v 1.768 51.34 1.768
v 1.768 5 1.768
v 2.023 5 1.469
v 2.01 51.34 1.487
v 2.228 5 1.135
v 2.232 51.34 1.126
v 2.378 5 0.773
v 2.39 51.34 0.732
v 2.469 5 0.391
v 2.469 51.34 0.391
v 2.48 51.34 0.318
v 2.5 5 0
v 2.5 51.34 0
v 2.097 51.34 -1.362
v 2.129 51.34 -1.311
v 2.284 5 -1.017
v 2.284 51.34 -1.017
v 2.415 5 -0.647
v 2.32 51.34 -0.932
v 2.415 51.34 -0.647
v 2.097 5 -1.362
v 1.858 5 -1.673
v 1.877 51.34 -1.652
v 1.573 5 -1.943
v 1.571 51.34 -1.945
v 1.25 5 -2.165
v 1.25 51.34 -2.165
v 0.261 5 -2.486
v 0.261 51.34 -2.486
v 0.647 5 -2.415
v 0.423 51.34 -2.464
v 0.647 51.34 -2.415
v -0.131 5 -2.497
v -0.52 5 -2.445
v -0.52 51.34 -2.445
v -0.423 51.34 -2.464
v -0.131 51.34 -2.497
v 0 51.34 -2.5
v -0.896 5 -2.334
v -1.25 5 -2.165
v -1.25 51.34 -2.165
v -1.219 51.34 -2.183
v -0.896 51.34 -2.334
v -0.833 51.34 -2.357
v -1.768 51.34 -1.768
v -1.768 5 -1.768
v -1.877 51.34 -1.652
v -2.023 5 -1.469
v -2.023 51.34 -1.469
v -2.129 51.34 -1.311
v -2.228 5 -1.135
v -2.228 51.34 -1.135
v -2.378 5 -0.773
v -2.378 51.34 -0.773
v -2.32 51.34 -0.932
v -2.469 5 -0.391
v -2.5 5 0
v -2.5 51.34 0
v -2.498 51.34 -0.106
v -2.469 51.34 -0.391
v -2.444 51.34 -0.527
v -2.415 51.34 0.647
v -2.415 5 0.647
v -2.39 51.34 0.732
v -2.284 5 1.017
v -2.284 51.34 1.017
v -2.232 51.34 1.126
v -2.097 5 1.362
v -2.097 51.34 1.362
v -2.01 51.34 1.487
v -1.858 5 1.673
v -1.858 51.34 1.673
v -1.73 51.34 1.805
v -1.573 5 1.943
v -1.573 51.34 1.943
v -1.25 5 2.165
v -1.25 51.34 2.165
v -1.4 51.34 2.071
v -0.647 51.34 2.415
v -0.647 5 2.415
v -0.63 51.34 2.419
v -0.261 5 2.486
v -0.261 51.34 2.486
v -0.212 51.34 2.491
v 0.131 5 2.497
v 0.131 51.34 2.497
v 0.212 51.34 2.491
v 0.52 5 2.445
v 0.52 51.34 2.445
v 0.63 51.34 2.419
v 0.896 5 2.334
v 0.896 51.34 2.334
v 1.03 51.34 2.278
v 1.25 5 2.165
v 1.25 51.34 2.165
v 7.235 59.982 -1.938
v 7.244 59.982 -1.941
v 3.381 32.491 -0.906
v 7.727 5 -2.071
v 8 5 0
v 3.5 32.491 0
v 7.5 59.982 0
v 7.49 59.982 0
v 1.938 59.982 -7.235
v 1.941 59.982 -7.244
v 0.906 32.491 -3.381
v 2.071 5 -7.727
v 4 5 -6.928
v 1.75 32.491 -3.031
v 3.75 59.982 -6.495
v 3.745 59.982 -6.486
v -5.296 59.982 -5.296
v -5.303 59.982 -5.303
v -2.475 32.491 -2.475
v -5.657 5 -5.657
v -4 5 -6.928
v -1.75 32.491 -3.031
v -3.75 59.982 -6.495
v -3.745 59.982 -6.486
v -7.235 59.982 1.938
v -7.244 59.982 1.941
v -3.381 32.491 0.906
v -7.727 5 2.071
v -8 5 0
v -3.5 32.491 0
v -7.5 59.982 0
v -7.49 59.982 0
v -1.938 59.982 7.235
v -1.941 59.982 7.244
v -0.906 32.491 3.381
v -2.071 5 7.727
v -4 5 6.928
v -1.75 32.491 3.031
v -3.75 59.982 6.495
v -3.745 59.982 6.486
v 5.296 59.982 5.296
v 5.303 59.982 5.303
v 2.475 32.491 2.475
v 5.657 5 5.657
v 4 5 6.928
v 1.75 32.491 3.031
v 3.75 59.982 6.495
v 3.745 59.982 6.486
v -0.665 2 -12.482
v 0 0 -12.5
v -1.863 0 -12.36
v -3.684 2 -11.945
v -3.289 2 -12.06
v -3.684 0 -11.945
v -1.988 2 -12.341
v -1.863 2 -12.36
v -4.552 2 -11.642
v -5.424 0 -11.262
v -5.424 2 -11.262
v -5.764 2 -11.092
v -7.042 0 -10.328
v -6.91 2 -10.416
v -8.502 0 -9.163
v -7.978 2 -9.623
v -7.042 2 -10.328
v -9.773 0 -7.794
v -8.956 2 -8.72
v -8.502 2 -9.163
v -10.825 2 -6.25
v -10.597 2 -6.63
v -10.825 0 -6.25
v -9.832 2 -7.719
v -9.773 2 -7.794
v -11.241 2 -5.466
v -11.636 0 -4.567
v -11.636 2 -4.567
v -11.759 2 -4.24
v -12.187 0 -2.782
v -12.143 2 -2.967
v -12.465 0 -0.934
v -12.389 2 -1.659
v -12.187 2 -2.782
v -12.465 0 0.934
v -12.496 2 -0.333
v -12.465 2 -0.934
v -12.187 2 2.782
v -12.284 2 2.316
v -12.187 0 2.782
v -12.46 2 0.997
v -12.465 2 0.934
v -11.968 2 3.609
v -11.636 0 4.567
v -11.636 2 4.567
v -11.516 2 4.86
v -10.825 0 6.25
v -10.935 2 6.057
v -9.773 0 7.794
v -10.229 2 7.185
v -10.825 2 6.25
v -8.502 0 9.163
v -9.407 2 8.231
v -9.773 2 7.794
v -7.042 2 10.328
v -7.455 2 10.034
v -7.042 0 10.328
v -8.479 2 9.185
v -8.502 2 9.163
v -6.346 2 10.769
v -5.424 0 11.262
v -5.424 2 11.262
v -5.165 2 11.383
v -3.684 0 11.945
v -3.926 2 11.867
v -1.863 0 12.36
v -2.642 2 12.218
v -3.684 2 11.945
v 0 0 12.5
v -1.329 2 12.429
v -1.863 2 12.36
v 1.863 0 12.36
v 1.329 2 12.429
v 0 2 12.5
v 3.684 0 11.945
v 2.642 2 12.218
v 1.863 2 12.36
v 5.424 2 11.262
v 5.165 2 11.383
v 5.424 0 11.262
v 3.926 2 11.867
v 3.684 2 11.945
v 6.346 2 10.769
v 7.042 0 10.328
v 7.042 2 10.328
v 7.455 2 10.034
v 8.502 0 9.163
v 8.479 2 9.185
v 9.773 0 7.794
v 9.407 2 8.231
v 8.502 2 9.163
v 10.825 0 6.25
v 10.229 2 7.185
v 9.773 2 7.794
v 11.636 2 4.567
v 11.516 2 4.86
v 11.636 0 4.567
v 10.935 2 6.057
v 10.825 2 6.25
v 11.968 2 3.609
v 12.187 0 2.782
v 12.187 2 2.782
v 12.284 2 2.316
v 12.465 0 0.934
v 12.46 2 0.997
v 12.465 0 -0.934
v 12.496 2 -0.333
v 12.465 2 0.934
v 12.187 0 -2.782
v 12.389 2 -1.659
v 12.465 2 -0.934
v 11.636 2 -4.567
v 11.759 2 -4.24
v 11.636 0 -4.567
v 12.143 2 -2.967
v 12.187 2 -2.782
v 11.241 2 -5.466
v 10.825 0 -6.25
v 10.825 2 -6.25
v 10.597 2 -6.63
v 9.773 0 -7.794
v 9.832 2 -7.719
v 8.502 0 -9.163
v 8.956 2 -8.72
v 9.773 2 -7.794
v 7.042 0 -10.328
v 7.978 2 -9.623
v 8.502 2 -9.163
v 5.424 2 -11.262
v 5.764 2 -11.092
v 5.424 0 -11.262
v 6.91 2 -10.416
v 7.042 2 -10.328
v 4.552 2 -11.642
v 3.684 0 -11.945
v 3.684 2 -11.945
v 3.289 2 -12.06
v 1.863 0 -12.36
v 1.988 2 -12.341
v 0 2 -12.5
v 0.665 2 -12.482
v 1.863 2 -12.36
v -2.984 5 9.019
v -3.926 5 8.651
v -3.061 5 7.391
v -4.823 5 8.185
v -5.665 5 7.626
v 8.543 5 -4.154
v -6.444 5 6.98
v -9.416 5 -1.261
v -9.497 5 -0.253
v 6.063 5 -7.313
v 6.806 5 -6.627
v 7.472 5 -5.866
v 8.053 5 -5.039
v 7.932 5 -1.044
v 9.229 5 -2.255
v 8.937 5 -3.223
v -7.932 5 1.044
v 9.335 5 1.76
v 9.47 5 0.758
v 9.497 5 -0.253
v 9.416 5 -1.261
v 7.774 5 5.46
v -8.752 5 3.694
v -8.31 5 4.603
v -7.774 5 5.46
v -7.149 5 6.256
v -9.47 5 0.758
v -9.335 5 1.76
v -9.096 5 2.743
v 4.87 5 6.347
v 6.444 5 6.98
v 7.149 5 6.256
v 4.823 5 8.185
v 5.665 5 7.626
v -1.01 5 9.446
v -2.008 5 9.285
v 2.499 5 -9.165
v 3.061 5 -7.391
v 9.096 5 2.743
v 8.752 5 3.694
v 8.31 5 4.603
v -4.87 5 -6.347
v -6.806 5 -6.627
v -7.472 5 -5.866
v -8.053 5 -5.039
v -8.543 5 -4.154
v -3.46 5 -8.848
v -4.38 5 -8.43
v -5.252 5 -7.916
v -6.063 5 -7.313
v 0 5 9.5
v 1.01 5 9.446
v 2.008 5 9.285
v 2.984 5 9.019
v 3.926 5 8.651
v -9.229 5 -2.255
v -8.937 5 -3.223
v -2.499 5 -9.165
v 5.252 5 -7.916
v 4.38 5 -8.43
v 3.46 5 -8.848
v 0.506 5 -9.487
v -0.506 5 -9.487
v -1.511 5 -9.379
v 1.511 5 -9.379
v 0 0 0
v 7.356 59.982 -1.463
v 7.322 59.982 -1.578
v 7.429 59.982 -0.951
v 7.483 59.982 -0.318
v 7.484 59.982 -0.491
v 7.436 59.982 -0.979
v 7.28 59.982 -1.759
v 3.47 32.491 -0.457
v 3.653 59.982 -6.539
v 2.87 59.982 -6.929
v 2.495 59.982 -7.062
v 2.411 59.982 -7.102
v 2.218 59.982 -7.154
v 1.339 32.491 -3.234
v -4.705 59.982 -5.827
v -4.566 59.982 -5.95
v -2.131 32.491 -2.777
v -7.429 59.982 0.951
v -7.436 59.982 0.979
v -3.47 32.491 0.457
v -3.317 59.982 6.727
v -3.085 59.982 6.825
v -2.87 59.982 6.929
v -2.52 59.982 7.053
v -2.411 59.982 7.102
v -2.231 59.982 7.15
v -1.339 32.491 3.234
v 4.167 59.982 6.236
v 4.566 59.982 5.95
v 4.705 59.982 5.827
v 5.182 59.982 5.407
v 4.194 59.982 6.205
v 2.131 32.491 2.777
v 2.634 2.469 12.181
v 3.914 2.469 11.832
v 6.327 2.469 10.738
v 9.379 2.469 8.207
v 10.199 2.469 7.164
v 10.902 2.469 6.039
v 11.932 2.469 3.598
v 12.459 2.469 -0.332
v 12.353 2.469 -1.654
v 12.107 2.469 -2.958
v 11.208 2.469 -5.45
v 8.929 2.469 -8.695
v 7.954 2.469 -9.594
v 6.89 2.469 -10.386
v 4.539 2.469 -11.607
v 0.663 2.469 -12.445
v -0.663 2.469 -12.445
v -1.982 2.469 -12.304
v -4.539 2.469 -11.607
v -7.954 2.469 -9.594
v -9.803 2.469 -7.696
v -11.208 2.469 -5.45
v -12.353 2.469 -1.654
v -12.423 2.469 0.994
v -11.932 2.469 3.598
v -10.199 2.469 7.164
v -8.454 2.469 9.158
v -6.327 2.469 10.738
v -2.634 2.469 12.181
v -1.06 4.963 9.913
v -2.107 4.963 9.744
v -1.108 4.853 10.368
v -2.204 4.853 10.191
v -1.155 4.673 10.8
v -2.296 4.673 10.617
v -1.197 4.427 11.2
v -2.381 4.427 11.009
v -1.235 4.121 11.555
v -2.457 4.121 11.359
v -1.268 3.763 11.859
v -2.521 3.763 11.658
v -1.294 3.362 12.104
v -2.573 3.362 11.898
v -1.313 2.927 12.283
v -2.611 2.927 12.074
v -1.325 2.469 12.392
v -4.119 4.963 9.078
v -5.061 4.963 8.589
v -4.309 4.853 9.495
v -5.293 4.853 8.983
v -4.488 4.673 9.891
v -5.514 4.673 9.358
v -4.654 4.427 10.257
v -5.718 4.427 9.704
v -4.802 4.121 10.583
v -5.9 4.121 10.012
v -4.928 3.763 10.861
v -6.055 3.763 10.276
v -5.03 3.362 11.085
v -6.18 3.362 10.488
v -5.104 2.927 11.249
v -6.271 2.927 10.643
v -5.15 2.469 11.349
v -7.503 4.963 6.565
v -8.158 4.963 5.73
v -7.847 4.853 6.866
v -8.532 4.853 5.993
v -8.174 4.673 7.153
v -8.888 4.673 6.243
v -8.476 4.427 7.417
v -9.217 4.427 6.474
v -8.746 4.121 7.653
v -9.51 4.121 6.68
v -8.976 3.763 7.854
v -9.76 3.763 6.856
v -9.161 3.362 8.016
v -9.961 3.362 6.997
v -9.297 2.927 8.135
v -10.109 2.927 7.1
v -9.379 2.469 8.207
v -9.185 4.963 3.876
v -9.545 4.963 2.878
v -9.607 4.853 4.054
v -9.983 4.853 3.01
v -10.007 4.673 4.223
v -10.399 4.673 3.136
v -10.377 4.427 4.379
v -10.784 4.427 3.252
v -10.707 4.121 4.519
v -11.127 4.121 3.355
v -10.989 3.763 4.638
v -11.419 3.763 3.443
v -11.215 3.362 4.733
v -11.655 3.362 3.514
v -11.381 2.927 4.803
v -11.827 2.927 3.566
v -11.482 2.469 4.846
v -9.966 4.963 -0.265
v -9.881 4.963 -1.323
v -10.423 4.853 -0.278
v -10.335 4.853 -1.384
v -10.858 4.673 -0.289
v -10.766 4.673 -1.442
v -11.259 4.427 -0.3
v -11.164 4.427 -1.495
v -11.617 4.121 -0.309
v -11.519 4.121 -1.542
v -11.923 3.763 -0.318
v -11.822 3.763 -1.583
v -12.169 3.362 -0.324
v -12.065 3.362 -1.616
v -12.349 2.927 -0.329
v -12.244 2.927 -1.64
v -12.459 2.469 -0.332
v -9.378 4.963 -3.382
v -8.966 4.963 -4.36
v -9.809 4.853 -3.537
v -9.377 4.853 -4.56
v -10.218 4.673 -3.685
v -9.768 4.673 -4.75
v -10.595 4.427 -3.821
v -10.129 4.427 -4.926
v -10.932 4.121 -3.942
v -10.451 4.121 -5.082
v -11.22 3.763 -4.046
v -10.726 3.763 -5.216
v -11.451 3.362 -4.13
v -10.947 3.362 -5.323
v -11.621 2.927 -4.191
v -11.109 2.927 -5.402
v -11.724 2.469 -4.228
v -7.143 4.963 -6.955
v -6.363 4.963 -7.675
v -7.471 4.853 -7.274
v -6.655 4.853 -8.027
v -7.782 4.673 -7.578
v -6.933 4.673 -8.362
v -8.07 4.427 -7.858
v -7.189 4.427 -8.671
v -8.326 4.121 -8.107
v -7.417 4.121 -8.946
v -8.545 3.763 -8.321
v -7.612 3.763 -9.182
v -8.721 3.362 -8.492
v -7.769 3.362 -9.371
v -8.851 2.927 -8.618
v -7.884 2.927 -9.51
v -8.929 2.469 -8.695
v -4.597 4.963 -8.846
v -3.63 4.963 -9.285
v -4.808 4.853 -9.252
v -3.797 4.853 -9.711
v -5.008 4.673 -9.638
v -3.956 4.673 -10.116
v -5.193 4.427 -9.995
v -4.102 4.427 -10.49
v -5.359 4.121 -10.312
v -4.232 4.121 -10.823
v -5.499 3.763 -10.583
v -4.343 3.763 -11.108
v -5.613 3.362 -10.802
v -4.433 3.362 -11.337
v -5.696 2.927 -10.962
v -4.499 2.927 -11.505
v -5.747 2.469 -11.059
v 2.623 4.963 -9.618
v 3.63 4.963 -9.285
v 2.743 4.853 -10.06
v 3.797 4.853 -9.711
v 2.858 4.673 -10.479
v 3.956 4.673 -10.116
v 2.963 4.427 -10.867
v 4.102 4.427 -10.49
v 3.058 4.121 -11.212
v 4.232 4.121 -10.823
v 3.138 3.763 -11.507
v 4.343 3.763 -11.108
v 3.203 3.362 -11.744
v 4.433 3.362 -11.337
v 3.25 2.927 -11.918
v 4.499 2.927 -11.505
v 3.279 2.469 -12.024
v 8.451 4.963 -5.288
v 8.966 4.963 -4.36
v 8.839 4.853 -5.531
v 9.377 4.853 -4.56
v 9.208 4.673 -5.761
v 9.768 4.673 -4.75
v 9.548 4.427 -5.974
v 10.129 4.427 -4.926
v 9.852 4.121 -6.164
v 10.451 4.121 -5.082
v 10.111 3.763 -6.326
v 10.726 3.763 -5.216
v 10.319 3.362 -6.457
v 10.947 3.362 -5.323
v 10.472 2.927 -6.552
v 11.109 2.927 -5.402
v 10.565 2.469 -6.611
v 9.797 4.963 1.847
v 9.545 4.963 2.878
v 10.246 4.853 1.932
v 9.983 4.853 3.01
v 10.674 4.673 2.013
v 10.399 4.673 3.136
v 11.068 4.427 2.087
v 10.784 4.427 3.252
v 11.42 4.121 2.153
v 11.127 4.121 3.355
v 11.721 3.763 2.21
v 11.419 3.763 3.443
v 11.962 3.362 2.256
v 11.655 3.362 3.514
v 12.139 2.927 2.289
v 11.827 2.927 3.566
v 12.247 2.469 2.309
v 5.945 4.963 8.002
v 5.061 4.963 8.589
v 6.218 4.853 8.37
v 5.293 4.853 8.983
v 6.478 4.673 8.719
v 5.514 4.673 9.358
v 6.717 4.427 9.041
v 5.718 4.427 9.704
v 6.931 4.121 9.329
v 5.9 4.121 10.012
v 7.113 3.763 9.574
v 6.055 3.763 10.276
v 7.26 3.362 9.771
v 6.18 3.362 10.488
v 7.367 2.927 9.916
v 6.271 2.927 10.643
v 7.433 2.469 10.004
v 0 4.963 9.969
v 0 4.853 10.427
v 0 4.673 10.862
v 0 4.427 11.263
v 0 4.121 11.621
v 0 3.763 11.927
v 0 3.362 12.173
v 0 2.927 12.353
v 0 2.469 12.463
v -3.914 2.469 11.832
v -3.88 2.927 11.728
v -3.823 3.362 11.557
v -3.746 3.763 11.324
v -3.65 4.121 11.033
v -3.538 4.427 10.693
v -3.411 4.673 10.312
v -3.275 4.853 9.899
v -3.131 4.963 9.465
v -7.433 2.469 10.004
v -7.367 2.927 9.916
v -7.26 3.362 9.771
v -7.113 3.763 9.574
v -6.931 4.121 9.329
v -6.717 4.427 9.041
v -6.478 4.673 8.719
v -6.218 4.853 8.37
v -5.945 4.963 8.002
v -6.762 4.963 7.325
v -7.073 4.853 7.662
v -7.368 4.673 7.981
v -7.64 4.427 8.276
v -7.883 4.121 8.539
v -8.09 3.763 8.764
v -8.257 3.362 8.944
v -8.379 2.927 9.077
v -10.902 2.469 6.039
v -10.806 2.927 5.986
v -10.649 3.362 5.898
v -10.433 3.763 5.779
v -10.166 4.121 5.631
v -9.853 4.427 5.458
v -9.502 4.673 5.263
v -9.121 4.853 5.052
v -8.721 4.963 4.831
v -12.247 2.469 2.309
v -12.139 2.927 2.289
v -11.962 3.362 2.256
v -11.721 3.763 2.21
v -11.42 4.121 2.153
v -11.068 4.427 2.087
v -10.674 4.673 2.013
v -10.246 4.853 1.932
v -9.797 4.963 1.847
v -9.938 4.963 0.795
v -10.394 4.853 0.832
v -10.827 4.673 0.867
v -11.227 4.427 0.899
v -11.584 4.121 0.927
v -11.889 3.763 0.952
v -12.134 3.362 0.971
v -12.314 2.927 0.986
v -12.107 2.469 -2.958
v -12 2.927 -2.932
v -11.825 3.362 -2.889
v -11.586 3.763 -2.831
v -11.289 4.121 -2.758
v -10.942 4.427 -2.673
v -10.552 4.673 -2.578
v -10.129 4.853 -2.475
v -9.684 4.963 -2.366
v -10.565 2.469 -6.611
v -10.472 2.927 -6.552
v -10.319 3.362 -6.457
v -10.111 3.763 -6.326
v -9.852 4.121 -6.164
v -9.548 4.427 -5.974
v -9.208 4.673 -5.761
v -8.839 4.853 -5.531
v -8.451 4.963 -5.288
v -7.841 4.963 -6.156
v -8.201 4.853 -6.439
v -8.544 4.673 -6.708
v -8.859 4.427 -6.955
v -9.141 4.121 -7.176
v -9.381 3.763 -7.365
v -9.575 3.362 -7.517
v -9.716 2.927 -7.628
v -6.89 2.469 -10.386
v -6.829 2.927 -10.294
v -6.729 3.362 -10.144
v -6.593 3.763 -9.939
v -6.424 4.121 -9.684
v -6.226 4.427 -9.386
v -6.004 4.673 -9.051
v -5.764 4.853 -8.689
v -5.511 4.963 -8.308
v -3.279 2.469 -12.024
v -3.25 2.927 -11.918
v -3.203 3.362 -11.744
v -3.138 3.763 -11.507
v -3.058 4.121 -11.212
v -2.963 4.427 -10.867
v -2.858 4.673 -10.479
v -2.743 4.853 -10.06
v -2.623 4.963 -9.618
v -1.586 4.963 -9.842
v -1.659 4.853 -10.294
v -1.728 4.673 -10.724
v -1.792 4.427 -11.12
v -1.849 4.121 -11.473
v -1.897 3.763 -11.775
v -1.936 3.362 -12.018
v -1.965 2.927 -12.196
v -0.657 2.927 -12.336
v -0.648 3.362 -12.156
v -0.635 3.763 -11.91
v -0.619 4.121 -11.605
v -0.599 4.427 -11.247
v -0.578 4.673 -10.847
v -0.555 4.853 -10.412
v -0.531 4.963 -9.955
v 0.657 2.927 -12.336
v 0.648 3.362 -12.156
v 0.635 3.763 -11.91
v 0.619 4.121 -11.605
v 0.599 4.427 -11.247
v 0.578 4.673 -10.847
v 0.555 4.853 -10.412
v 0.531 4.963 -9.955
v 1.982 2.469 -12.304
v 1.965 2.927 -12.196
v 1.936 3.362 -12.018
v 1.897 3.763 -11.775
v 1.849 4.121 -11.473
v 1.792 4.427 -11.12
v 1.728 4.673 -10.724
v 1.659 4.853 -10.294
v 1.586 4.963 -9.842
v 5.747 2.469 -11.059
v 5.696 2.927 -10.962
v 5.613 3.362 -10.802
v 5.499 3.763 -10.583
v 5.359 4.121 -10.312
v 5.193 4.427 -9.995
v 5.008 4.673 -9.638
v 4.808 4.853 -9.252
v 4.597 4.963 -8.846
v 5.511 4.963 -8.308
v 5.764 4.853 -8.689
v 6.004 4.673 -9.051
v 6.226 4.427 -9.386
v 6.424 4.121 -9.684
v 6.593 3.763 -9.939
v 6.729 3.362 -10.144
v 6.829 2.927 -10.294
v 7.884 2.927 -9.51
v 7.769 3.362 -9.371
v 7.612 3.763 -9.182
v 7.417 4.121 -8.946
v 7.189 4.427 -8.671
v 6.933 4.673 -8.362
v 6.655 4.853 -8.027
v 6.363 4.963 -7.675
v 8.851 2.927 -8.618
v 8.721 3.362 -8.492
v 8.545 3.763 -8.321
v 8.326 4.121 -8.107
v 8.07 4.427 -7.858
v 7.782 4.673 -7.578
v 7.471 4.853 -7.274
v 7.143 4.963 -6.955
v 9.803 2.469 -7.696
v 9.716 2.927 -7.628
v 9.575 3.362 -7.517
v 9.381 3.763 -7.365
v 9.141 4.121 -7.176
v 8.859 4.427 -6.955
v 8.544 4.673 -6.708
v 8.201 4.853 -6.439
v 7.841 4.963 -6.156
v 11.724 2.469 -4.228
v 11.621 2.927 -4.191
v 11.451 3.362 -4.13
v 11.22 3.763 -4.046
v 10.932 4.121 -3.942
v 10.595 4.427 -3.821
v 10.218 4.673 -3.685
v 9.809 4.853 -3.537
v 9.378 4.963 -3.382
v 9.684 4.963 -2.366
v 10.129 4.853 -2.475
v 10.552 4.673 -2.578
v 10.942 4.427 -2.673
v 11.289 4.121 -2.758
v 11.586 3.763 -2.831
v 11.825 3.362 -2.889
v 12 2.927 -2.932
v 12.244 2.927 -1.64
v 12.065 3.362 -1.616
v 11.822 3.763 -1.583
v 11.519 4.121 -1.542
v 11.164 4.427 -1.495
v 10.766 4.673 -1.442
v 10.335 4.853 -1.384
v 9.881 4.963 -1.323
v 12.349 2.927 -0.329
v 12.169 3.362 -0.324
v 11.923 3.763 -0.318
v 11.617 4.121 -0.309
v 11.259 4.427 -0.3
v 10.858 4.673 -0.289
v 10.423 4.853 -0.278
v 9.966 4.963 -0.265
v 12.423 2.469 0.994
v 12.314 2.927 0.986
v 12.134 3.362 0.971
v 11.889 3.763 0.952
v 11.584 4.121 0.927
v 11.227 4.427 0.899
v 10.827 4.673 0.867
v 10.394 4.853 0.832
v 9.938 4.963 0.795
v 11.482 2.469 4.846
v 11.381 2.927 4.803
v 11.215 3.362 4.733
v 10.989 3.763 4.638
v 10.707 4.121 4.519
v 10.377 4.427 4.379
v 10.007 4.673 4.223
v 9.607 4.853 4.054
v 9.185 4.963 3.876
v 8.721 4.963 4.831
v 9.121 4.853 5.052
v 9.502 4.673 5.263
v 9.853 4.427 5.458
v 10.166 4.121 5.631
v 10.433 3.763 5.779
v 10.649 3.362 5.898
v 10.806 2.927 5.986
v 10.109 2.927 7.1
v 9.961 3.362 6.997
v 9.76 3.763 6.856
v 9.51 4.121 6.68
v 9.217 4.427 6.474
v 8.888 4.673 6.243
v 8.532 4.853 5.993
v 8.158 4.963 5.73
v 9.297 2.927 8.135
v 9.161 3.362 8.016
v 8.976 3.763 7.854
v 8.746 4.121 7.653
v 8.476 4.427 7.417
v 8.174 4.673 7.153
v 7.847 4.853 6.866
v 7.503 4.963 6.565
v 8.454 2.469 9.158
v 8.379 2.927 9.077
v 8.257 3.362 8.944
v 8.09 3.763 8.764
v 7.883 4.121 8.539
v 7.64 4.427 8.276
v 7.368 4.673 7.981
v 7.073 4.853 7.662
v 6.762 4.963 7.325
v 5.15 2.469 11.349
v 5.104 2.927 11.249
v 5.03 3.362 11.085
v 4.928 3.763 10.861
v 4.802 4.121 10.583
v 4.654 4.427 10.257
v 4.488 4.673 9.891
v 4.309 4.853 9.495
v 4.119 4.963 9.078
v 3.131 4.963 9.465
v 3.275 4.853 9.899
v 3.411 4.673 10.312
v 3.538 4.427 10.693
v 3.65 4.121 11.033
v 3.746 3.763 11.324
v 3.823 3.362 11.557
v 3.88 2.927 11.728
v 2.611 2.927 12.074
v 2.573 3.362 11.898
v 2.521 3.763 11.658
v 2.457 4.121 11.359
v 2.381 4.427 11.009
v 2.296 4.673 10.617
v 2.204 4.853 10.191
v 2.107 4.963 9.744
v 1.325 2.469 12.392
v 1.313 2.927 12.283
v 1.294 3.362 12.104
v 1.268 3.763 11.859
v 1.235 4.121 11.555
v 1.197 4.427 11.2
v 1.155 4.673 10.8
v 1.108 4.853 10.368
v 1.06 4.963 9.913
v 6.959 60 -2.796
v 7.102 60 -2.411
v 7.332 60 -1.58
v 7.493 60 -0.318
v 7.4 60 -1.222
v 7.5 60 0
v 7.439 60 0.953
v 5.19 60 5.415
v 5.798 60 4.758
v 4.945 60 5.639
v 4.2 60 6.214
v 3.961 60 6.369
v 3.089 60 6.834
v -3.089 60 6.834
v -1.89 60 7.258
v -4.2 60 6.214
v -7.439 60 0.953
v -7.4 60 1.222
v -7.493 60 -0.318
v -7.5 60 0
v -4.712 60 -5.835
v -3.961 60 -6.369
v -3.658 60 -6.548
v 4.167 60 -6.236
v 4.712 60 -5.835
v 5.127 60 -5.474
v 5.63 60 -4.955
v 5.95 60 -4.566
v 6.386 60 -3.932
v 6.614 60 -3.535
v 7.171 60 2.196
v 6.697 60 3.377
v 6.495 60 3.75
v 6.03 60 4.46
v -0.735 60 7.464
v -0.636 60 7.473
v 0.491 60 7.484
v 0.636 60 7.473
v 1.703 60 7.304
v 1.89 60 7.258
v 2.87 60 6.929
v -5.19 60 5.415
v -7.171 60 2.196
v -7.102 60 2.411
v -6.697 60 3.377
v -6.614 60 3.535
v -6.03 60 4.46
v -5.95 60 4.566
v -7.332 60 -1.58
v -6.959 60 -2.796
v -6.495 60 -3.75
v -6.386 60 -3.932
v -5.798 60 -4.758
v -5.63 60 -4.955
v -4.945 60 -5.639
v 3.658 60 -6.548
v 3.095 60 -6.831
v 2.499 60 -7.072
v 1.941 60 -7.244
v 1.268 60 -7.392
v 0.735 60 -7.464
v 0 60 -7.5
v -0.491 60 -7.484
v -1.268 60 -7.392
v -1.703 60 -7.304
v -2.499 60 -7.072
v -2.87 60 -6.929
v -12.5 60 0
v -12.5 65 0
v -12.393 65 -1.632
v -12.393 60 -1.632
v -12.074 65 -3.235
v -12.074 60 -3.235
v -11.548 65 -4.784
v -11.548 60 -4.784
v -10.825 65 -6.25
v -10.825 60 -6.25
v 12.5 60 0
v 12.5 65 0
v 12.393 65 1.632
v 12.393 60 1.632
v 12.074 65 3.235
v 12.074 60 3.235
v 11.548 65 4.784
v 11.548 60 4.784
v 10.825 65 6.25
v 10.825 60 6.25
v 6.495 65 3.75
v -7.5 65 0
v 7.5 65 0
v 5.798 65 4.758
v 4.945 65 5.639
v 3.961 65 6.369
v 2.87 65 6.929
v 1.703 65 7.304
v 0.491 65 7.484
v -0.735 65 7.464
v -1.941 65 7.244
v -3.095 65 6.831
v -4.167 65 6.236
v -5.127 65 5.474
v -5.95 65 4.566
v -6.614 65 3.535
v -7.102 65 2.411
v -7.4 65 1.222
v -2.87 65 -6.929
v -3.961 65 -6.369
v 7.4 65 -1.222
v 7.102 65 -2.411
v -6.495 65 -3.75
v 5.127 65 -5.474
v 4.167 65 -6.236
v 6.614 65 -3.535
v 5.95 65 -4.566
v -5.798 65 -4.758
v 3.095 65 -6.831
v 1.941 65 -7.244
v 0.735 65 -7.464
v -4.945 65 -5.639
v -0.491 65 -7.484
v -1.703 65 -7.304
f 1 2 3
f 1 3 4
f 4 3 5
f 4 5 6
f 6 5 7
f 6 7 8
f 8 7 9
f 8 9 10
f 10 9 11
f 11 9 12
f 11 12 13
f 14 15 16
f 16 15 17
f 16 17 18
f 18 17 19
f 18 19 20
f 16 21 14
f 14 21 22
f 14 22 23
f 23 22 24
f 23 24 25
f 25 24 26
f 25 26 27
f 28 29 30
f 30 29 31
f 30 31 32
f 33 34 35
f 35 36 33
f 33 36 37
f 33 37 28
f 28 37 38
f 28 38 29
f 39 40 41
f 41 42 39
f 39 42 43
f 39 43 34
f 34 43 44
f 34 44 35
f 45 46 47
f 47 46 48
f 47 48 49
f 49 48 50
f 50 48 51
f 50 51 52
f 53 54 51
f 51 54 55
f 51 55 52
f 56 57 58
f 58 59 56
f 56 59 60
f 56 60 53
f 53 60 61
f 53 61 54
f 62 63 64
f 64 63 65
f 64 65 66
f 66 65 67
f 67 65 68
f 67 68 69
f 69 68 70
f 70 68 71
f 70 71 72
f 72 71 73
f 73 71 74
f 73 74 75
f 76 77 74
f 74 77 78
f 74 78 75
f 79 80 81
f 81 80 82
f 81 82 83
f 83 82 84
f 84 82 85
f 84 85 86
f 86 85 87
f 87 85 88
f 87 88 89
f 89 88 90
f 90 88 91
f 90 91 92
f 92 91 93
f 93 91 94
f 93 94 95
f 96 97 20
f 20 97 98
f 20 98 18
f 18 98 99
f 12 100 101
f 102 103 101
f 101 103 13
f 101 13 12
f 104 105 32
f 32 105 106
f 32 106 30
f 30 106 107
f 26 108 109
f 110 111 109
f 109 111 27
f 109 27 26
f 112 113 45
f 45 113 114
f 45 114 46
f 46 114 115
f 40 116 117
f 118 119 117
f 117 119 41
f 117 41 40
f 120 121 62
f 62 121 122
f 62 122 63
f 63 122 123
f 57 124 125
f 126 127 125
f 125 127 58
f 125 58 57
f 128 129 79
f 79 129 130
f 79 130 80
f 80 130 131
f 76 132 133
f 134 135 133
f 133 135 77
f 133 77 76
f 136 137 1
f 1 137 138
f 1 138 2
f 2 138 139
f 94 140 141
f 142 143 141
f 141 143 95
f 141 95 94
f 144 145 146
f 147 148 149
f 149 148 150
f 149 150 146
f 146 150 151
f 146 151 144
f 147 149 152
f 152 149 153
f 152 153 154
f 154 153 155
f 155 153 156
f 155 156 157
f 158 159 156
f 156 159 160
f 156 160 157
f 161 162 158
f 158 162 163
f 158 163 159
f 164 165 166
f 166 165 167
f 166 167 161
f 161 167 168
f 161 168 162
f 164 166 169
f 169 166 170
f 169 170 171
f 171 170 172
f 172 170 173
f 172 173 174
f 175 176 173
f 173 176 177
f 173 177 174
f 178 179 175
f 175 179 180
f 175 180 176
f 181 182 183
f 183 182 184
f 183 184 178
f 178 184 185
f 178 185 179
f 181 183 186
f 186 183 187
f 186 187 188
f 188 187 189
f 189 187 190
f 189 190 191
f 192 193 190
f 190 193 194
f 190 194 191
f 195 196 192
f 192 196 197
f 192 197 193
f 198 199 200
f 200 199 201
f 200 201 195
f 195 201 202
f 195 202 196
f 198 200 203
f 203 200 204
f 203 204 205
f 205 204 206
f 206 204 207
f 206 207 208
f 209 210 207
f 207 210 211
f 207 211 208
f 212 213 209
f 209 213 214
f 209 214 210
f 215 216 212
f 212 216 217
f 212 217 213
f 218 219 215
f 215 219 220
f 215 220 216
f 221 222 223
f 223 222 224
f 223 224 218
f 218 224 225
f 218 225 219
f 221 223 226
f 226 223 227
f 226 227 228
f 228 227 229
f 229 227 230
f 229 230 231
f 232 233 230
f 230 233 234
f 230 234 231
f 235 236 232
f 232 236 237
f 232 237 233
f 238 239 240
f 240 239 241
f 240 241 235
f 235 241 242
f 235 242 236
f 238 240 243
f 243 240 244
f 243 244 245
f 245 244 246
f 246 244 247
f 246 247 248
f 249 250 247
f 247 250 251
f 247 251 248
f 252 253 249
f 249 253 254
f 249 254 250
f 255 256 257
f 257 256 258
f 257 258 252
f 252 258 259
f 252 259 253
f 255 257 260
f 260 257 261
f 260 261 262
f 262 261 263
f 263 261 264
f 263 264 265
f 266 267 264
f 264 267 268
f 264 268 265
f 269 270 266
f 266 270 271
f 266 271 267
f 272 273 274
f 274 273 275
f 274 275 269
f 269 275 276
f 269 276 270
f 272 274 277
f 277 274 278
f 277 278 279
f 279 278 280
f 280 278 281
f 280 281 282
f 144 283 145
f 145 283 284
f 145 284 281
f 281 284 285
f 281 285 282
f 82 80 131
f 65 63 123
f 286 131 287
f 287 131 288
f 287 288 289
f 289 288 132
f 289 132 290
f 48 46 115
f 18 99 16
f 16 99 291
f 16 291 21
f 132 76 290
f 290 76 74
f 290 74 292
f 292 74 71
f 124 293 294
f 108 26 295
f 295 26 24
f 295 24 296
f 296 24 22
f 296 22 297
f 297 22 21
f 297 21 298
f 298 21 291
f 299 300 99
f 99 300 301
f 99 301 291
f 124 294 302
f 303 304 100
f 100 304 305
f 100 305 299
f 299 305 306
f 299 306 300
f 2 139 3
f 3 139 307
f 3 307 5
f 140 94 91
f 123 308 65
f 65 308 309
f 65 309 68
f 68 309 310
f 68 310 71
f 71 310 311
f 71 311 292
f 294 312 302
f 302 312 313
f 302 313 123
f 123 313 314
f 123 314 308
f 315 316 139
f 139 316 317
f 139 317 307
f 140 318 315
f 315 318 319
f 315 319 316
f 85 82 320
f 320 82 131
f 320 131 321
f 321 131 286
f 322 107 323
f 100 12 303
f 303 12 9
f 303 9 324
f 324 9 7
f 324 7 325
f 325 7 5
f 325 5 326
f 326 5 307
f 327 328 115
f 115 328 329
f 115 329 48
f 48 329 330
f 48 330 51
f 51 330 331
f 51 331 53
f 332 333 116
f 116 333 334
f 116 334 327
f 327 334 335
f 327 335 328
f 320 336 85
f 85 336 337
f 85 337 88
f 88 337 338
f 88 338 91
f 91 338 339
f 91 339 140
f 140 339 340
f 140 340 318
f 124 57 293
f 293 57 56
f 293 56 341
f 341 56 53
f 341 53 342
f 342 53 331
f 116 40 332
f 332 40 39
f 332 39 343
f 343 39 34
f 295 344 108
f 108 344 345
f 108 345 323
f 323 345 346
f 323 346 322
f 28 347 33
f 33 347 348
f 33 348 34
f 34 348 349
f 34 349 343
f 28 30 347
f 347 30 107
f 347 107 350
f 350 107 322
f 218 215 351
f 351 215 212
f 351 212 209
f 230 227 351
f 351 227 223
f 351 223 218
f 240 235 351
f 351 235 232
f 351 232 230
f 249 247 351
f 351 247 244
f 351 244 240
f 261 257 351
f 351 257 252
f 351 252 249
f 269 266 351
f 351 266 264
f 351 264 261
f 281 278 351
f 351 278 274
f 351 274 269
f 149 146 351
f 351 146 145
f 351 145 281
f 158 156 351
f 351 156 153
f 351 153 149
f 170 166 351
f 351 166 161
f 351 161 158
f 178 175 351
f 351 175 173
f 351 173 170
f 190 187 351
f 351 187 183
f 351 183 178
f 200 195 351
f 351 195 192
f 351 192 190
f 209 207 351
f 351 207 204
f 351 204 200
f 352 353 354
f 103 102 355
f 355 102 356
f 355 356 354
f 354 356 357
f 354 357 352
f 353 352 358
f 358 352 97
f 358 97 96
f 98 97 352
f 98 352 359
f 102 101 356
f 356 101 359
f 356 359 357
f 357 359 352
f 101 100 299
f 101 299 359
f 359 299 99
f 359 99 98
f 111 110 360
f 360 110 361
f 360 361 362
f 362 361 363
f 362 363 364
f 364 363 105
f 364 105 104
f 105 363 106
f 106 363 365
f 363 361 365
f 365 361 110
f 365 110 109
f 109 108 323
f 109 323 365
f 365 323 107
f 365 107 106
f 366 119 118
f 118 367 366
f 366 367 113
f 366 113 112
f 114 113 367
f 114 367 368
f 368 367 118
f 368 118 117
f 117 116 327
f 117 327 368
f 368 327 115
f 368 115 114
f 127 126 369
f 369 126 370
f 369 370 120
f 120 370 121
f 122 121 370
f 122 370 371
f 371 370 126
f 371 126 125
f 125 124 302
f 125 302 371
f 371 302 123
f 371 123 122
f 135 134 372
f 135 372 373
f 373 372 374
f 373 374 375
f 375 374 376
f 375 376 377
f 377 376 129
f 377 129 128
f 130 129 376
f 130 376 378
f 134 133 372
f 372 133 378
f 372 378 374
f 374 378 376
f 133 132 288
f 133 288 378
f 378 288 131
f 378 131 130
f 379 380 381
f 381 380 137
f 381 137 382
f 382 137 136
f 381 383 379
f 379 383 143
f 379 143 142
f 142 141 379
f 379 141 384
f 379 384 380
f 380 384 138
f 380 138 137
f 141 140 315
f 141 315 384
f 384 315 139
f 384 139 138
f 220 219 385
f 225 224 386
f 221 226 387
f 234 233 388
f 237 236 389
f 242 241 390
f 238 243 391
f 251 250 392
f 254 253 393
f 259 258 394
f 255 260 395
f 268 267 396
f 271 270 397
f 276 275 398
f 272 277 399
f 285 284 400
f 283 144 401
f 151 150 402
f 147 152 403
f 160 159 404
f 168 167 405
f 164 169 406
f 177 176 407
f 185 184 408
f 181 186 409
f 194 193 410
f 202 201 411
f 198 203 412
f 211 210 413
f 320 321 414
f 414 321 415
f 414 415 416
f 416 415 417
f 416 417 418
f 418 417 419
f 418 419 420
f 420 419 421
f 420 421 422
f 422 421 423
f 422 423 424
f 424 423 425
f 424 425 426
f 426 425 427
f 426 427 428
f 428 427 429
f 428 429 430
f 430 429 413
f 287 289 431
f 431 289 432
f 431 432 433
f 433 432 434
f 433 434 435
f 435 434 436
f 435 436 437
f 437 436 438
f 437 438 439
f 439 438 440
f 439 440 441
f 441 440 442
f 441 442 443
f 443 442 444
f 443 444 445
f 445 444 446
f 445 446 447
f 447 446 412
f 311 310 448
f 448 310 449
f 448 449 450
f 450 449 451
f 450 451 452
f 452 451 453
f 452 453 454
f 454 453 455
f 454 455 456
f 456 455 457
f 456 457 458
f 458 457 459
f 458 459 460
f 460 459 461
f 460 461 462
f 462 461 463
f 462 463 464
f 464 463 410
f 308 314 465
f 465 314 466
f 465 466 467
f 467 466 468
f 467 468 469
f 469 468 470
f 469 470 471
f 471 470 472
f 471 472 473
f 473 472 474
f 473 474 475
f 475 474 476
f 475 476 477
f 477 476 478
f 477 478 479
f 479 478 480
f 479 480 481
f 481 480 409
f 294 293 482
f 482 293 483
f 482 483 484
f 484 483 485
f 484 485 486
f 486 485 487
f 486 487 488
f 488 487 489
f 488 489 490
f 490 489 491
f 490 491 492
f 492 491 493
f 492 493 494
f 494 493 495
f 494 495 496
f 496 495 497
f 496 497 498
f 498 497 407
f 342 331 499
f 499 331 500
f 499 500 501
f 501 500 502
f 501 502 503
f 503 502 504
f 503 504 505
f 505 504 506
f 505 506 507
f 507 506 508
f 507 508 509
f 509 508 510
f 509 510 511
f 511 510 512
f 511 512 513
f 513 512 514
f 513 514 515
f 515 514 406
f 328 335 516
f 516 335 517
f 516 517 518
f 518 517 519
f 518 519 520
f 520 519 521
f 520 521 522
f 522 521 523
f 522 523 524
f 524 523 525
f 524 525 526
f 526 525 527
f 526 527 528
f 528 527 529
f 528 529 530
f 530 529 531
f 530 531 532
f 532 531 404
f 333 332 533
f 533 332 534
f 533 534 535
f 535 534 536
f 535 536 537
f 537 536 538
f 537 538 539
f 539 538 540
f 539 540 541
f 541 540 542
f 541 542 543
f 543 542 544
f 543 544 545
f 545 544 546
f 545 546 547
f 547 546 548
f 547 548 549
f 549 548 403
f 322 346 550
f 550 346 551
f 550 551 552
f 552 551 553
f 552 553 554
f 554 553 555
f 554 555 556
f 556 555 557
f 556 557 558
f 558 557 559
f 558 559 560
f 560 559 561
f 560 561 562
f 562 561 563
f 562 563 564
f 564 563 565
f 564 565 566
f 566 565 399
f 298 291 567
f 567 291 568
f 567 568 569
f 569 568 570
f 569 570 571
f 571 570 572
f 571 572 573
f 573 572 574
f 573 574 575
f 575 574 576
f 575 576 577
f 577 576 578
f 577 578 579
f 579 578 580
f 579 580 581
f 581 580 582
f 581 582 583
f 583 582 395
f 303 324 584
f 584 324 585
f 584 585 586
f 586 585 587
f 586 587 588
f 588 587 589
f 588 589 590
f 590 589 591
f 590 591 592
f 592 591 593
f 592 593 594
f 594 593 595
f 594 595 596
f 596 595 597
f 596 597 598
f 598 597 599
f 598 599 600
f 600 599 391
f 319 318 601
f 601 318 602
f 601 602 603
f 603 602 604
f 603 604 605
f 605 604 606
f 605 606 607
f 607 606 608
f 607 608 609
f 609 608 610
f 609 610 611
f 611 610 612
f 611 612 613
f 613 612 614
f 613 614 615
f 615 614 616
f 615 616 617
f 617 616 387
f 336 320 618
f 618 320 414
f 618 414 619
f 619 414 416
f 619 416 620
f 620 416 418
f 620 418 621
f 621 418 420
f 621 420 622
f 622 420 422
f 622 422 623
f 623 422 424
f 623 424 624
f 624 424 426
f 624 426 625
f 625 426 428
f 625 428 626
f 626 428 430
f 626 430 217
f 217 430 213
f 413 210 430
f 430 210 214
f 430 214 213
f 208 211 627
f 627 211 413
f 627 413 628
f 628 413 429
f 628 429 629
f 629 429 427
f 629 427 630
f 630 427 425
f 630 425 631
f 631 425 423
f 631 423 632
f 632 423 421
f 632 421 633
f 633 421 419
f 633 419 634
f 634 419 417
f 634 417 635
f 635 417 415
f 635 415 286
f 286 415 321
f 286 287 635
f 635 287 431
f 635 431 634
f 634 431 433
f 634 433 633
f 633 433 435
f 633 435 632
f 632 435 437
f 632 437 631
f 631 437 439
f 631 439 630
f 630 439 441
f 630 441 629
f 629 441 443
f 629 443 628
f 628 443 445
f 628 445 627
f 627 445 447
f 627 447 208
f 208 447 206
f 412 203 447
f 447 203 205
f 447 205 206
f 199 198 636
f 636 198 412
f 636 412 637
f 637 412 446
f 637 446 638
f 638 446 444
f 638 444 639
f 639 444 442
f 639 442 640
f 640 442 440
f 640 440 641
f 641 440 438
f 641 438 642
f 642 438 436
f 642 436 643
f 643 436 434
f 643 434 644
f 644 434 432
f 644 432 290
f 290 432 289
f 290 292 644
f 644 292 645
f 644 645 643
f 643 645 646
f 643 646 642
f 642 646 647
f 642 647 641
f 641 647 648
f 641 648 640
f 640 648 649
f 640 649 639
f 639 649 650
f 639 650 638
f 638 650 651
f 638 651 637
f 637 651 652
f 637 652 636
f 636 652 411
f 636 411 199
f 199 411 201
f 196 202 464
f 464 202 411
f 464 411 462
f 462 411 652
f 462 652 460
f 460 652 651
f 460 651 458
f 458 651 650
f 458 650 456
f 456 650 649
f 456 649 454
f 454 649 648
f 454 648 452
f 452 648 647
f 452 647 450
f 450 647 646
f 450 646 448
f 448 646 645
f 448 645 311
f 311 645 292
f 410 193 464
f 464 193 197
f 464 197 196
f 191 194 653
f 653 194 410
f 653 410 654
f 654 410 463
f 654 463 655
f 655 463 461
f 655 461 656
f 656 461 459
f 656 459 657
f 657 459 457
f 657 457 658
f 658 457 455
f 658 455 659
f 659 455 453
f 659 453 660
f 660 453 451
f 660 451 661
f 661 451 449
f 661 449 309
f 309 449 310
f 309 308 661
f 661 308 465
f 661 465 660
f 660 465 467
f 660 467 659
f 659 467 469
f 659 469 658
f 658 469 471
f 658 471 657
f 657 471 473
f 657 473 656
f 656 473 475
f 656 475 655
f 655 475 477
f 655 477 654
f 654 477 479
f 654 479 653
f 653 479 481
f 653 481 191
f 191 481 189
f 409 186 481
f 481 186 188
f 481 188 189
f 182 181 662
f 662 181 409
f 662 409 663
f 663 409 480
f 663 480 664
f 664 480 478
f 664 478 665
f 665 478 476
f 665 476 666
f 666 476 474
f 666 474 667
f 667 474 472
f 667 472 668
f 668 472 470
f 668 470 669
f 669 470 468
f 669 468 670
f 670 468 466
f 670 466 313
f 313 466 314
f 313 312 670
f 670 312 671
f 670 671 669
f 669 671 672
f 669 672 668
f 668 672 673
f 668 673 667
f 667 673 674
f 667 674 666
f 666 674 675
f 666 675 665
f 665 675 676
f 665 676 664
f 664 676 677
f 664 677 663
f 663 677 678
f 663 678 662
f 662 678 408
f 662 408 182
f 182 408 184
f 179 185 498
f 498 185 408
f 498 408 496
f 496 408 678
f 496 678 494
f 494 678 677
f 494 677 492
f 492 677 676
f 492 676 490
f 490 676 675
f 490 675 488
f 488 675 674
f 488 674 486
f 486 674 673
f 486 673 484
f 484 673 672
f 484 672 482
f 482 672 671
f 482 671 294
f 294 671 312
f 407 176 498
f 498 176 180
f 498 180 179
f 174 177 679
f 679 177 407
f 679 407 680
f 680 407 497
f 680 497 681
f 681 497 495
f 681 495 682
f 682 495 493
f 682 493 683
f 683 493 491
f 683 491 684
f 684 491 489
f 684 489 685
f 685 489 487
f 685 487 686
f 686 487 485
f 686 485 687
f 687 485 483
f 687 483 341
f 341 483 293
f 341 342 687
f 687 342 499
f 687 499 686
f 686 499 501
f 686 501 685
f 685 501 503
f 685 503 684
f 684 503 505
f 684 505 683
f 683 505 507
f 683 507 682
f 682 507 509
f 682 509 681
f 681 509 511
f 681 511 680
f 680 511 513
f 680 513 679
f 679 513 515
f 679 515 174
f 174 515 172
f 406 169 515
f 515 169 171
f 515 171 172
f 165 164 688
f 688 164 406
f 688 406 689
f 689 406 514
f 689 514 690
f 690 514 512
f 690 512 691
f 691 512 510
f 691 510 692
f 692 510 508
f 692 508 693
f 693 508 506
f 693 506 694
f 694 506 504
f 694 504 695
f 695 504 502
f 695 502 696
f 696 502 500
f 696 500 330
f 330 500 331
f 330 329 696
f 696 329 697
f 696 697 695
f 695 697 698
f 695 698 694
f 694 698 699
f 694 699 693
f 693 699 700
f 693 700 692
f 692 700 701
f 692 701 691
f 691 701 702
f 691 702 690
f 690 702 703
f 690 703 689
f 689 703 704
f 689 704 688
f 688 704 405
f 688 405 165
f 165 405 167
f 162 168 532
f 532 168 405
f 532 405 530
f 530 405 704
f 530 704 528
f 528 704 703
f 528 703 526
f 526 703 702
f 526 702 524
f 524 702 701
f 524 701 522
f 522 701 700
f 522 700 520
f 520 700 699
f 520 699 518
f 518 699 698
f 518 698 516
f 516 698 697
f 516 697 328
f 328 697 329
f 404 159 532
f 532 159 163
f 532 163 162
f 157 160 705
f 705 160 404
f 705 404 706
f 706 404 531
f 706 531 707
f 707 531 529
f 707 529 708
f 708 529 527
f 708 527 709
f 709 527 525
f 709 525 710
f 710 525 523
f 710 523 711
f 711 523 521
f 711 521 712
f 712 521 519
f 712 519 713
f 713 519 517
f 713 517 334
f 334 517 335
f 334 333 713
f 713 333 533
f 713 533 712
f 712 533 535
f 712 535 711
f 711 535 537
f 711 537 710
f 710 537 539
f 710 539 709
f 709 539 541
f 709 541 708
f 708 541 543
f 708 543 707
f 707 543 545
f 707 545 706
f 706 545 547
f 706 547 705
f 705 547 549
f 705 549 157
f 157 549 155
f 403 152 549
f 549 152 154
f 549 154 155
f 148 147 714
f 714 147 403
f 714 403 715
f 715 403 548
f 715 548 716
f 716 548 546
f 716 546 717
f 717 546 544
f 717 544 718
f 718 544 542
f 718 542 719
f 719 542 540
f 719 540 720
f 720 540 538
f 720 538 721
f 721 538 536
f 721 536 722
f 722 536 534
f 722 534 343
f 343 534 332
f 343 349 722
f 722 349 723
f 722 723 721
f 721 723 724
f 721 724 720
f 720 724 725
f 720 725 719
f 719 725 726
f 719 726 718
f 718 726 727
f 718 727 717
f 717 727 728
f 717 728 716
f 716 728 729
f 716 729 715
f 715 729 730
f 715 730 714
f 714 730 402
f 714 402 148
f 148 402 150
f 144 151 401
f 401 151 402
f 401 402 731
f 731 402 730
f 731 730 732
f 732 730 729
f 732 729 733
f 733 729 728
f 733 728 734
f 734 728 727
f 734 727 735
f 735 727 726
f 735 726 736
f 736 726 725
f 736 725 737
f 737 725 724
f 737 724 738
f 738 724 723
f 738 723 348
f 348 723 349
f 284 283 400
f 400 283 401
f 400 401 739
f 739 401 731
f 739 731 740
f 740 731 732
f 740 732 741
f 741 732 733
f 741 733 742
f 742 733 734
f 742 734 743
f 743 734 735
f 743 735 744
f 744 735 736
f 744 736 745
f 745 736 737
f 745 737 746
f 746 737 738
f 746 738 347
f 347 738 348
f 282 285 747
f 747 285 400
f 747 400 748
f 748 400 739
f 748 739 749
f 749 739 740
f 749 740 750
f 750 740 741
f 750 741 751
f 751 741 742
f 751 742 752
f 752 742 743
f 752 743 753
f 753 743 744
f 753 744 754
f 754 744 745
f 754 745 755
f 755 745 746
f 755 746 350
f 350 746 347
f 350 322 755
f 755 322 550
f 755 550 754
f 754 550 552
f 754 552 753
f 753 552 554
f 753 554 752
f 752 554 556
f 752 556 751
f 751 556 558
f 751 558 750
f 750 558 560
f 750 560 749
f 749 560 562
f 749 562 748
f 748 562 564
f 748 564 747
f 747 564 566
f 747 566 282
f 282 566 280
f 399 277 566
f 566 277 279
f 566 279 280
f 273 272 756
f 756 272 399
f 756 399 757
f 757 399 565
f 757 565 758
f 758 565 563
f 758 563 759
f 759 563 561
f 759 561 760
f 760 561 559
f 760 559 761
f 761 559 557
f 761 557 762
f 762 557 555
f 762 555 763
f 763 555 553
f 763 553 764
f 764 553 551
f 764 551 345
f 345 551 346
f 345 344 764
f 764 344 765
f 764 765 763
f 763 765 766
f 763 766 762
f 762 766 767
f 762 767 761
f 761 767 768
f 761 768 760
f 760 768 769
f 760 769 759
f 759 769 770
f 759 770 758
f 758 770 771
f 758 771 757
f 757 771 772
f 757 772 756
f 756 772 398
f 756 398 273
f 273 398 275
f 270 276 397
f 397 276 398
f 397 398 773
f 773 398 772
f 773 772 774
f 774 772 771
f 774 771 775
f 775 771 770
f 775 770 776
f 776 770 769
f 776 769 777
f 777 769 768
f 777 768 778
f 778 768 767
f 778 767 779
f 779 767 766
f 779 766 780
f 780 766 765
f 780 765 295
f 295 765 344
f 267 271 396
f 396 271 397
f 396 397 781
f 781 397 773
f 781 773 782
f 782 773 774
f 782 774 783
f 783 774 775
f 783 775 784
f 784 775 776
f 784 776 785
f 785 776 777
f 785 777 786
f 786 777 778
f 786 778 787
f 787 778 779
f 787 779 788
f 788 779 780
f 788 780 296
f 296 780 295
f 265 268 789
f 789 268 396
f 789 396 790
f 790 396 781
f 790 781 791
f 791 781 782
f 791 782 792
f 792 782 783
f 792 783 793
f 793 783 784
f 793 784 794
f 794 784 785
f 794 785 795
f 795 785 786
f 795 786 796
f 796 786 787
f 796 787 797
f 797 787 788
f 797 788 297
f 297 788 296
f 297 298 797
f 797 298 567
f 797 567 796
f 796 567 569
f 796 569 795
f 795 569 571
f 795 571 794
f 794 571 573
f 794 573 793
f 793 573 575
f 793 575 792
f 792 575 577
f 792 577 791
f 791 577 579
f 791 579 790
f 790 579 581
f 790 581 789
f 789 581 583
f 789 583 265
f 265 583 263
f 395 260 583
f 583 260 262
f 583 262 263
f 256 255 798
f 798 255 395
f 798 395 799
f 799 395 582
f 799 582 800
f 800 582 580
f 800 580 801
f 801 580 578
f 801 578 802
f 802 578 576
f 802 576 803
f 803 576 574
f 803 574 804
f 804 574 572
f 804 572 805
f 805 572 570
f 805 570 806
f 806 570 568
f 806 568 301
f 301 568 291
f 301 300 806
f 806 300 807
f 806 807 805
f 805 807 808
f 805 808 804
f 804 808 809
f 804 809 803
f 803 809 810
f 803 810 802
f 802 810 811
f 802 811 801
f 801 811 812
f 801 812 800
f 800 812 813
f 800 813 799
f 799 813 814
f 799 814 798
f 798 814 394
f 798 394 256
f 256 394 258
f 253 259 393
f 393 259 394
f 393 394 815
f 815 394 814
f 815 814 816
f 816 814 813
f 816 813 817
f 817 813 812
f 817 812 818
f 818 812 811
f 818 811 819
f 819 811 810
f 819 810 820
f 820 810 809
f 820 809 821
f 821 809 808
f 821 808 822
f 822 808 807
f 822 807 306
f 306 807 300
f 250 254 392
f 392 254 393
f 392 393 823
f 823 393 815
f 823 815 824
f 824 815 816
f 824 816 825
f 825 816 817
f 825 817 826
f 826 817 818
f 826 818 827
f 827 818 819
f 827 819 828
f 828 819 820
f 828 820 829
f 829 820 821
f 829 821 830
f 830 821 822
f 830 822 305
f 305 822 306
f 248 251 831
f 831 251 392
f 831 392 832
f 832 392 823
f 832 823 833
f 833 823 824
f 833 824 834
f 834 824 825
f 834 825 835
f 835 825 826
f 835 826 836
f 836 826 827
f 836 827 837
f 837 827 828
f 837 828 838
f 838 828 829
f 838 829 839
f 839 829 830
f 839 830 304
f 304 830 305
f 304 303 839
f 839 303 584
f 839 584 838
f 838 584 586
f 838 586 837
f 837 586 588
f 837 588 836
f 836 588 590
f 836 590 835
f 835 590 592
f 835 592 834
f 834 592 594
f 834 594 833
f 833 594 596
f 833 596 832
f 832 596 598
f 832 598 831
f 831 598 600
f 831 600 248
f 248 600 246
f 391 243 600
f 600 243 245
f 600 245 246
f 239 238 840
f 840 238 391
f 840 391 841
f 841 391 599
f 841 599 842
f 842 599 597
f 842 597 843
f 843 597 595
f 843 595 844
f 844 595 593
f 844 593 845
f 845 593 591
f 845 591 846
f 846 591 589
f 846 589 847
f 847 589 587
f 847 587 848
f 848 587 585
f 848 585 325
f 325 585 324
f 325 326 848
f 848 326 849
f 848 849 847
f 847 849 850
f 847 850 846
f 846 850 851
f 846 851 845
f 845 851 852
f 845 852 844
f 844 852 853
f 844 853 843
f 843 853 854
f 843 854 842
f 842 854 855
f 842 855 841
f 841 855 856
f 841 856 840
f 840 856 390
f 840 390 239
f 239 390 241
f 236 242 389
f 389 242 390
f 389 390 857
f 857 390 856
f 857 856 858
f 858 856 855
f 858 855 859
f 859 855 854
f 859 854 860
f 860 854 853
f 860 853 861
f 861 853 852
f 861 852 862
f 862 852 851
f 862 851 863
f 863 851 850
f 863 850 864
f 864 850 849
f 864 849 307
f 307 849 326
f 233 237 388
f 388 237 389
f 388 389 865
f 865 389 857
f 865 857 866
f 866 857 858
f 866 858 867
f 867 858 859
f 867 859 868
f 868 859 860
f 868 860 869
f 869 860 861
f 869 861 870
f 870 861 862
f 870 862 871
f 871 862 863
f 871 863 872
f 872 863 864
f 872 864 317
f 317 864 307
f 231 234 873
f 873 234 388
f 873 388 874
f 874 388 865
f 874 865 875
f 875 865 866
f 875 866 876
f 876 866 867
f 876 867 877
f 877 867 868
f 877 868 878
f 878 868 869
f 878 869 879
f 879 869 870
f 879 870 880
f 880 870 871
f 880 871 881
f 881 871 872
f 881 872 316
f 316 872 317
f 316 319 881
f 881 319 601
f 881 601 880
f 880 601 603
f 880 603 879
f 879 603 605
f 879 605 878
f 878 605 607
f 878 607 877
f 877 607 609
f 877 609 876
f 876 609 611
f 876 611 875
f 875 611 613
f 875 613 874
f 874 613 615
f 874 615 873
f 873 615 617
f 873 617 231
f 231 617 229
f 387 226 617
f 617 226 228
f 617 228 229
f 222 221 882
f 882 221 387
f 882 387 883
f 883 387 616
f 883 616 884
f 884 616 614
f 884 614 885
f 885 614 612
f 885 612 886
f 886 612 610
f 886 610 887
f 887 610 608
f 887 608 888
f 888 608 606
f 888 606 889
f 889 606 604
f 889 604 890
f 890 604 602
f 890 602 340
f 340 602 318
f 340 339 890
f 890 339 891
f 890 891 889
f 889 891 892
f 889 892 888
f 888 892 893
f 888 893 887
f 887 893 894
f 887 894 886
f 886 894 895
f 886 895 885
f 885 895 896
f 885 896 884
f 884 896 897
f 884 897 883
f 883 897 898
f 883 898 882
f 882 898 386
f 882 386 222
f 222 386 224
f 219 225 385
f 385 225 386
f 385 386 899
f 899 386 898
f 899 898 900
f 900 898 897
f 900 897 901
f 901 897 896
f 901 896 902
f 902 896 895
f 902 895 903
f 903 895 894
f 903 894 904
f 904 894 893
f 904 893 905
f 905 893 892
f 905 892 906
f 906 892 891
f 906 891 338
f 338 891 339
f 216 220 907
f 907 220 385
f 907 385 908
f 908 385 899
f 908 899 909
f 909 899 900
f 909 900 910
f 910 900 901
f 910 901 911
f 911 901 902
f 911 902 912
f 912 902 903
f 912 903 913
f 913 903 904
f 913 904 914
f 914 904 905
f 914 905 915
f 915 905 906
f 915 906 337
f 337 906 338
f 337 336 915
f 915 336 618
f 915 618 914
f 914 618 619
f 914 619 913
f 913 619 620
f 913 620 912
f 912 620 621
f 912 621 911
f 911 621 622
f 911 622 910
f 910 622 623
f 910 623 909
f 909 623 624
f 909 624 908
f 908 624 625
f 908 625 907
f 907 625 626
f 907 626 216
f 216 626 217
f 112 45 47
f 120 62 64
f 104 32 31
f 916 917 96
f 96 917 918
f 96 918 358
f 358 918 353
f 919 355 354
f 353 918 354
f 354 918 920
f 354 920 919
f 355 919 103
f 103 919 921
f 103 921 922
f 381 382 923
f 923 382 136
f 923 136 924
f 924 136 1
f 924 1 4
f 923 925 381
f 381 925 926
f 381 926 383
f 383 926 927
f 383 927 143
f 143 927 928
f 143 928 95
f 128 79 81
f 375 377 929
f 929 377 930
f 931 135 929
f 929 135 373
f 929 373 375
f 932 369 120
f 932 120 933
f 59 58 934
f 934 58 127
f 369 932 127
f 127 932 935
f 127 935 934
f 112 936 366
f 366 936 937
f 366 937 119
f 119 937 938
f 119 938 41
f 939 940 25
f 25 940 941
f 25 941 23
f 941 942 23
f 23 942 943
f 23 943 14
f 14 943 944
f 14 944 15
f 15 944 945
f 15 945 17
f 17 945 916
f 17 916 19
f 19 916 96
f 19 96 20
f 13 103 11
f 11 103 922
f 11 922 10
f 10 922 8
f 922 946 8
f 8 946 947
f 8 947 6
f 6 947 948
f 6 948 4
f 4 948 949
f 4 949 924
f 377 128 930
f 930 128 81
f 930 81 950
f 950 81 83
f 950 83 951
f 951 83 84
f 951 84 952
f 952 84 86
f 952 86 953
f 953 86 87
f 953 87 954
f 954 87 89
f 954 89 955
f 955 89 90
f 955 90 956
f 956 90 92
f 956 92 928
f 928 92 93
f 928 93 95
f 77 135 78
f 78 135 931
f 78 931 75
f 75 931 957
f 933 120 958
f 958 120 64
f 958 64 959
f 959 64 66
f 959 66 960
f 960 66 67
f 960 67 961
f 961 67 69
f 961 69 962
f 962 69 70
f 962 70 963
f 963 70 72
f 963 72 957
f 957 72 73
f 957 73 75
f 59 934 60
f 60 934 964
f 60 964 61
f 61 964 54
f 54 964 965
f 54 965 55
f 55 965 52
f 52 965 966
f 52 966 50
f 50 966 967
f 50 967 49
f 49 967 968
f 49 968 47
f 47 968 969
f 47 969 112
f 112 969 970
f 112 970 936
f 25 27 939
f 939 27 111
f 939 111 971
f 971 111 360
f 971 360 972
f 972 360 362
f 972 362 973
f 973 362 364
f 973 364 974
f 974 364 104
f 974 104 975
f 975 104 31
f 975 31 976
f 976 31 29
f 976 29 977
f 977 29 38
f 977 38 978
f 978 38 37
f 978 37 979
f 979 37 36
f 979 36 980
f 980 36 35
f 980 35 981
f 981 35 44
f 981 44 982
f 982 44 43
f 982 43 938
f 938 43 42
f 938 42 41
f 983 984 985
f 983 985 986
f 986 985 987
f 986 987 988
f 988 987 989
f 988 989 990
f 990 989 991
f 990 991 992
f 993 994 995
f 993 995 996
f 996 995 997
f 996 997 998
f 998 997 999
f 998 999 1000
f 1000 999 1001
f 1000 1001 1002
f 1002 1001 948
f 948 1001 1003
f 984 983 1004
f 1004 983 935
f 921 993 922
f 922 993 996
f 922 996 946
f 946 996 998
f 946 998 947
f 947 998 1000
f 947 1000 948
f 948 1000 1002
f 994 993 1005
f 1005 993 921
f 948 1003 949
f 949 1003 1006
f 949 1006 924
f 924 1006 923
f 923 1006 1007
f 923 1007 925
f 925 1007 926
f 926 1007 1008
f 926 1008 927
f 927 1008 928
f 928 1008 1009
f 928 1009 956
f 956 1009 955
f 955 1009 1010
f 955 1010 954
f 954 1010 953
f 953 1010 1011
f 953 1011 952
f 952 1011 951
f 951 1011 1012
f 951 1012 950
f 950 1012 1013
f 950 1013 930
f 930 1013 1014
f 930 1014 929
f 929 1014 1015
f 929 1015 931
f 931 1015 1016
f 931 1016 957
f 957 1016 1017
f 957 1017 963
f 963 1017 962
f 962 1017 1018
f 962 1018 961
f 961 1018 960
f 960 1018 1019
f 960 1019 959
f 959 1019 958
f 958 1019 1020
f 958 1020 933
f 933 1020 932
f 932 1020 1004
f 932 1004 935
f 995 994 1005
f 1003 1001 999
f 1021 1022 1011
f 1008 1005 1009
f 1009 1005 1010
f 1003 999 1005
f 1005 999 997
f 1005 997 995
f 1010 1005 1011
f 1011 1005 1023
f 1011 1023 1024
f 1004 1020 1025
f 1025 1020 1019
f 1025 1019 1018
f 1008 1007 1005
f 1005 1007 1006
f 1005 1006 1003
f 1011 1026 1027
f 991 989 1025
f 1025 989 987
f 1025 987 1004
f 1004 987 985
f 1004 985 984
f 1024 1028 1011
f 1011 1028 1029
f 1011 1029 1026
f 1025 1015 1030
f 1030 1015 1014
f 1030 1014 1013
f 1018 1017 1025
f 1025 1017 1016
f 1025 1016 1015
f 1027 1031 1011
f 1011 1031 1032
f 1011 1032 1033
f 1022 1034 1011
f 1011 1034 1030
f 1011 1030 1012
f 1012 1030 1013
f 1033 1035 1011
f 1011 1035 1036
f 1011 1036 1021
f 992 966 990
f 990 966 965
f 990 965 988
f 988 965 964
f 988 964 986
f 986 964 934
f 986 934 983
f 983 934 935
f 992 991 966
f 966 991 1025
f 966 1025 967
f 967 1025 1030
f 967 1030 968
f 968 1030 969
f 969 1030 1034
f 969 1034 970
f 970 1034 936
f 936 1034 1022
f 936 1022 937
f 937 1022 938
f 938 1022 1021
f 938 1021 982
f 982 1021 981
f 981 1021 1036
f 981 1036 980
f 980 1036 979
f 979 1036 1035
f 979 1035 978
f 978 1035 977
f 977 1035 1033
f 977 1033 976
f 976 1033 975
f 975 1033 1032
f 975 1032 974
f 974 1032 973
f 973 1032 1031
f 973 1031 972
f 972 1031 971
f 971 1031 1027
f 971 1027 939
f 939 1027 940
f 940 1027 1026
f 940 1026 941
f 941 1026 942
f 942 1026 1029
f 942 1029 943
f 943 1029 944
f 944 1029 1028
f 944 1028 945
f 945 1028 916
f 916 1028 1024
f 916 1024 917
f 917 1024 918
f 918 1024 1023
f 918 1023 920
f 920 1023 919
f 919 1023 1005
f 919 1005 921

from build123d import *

# Parameters (mm, degrees)
SKETCH1_R           = 12.5
BOSS_EXTRUDE1_DEPTH = 5
SKETCH2_R           = 2.5
BOSS_EXTRUDE2_DEPTH = 60
BOSS_EXTRUDE3_DEPTH = 5
REVOLVE1_ANGLE      = 15
SKETCH7_R           = 7.5
BOSS_EXTRUDE4_DEPTH = 5
CIRPATTERN1_COUNT   = 6
FILLET1_R           = 3
SKETCH8_R           = 7.5
BOSS_EXTRUDE5_DEPTH = 10
BOSS_EXTRUDE5_TAPER = 30


with BuildPart() as part:
    # Sketch1 → Boss-Extrude1 (new body)
    with BuildSketch(Plane(origin=(0, 0, 0), x_dir=(1, 0, 0), z_dir=(0, 1, 0))):
        Circle(SKETCH1_R)
    extrude(amount=BOSS_EXTRUDE1_DEPTH)

    # Sketch2 → Boss-Extrude2 (add)
    with BuildSketch(Plane(origin=(0, 5, 0), x_dir=(1, 0, 0), z_dir=(0, 1, 0))):
        Circle(SKETCH2_R)
    extrude(amount=BOSS_EXTRUDE2_DEPTH)

    # Sketch3 → Boss-Extrude3 (add)
    with BuildSketch(Plane(origin=(0, 65, 0), x_dir=(1, 0, 0), z_dir=(0, 1, 0))):
        with BuildLine():
            Line((2.5, 0), (12.5, 0))
            ThreePointArc((12.5, 0), (12.074072829, -3.235238064), (10.825317547, -6.25))
            Line((10.825317547, -6.25), (2.165063509, -1.25))
            ThreePointArc((2.165063509, -1.25), (-0.647047613, -2.414814566), (-2.5, 0))
            Line((-2.5, 0), (-12.5, 0))
            ThreePointArc((-12.5, 0), (-12.074072829, 3.235238064), (-10.825317547, 6.25))
            Line((-10.825317547, 6.25), (-2.165063509, 1.25))
            ThreePointArc((-2.165063509, 1.25), (0.647047613, 2.414814566), (2.5, 0))
        make_face()
    extrude(amount=-BOSS_EXTRUDE3_DEPTH)

    # Sketch6 → Revolve1 (revolve)
    with BuildSketch(Plane.XY):
        Polygon((8, 5), (3.5, 32.491106736), (7.5, 59.982213472), (0, 59.982213472), (0, 5), align=None)
    revolve1 = revolve(axis=Axis((0, 5, 0), (0, 1, 0)), revolution_arc=REVOLVE1_ANGLE)

    # Sketch7 → Boss-Extrude4 (add)
    with BuildSketch(Plane(origin=(0, 65, 0), x_dir=(1, 0, 0), z_dir=(0, 1, 0))):
        Circle(SKETCH7_R)
    extrude(amount=-BOSS_EXTRUDE4_DEPTH)

    # CirPattern1: Revolve1 ×6 about axis
    cirpattern1_axis = Axis((0, 0, 0), (0, 1, 0))
    for i in range(1, CIRPATTERN1_COUNT):
        add(revolve1.rotate(cirpattern1_axis, i * 360 / CIRPATTERN1_COUNT))

    # Fillet1
    fillet1_edges = [part.edges().sort_by_distance(p)[0] for p in [
        (-12.5, 5, 0),
    ]]
    fillet(fillet1_edges, radius=FILLET1_R)

    # Sketch8 → Boss-Extrude5 (add)
    with BuildSketch(Plane(origin=(0, 60, 0), x_dir=(-1, 0, 0), z_dir=(0, -1, 0))):
        Circle(SKETCH8_R)
    extrude(amount=BOSS_EXTRUDE5_DEPTH, taper=BOSS_EXTRUDE5_TAPER)


solid = part.part
